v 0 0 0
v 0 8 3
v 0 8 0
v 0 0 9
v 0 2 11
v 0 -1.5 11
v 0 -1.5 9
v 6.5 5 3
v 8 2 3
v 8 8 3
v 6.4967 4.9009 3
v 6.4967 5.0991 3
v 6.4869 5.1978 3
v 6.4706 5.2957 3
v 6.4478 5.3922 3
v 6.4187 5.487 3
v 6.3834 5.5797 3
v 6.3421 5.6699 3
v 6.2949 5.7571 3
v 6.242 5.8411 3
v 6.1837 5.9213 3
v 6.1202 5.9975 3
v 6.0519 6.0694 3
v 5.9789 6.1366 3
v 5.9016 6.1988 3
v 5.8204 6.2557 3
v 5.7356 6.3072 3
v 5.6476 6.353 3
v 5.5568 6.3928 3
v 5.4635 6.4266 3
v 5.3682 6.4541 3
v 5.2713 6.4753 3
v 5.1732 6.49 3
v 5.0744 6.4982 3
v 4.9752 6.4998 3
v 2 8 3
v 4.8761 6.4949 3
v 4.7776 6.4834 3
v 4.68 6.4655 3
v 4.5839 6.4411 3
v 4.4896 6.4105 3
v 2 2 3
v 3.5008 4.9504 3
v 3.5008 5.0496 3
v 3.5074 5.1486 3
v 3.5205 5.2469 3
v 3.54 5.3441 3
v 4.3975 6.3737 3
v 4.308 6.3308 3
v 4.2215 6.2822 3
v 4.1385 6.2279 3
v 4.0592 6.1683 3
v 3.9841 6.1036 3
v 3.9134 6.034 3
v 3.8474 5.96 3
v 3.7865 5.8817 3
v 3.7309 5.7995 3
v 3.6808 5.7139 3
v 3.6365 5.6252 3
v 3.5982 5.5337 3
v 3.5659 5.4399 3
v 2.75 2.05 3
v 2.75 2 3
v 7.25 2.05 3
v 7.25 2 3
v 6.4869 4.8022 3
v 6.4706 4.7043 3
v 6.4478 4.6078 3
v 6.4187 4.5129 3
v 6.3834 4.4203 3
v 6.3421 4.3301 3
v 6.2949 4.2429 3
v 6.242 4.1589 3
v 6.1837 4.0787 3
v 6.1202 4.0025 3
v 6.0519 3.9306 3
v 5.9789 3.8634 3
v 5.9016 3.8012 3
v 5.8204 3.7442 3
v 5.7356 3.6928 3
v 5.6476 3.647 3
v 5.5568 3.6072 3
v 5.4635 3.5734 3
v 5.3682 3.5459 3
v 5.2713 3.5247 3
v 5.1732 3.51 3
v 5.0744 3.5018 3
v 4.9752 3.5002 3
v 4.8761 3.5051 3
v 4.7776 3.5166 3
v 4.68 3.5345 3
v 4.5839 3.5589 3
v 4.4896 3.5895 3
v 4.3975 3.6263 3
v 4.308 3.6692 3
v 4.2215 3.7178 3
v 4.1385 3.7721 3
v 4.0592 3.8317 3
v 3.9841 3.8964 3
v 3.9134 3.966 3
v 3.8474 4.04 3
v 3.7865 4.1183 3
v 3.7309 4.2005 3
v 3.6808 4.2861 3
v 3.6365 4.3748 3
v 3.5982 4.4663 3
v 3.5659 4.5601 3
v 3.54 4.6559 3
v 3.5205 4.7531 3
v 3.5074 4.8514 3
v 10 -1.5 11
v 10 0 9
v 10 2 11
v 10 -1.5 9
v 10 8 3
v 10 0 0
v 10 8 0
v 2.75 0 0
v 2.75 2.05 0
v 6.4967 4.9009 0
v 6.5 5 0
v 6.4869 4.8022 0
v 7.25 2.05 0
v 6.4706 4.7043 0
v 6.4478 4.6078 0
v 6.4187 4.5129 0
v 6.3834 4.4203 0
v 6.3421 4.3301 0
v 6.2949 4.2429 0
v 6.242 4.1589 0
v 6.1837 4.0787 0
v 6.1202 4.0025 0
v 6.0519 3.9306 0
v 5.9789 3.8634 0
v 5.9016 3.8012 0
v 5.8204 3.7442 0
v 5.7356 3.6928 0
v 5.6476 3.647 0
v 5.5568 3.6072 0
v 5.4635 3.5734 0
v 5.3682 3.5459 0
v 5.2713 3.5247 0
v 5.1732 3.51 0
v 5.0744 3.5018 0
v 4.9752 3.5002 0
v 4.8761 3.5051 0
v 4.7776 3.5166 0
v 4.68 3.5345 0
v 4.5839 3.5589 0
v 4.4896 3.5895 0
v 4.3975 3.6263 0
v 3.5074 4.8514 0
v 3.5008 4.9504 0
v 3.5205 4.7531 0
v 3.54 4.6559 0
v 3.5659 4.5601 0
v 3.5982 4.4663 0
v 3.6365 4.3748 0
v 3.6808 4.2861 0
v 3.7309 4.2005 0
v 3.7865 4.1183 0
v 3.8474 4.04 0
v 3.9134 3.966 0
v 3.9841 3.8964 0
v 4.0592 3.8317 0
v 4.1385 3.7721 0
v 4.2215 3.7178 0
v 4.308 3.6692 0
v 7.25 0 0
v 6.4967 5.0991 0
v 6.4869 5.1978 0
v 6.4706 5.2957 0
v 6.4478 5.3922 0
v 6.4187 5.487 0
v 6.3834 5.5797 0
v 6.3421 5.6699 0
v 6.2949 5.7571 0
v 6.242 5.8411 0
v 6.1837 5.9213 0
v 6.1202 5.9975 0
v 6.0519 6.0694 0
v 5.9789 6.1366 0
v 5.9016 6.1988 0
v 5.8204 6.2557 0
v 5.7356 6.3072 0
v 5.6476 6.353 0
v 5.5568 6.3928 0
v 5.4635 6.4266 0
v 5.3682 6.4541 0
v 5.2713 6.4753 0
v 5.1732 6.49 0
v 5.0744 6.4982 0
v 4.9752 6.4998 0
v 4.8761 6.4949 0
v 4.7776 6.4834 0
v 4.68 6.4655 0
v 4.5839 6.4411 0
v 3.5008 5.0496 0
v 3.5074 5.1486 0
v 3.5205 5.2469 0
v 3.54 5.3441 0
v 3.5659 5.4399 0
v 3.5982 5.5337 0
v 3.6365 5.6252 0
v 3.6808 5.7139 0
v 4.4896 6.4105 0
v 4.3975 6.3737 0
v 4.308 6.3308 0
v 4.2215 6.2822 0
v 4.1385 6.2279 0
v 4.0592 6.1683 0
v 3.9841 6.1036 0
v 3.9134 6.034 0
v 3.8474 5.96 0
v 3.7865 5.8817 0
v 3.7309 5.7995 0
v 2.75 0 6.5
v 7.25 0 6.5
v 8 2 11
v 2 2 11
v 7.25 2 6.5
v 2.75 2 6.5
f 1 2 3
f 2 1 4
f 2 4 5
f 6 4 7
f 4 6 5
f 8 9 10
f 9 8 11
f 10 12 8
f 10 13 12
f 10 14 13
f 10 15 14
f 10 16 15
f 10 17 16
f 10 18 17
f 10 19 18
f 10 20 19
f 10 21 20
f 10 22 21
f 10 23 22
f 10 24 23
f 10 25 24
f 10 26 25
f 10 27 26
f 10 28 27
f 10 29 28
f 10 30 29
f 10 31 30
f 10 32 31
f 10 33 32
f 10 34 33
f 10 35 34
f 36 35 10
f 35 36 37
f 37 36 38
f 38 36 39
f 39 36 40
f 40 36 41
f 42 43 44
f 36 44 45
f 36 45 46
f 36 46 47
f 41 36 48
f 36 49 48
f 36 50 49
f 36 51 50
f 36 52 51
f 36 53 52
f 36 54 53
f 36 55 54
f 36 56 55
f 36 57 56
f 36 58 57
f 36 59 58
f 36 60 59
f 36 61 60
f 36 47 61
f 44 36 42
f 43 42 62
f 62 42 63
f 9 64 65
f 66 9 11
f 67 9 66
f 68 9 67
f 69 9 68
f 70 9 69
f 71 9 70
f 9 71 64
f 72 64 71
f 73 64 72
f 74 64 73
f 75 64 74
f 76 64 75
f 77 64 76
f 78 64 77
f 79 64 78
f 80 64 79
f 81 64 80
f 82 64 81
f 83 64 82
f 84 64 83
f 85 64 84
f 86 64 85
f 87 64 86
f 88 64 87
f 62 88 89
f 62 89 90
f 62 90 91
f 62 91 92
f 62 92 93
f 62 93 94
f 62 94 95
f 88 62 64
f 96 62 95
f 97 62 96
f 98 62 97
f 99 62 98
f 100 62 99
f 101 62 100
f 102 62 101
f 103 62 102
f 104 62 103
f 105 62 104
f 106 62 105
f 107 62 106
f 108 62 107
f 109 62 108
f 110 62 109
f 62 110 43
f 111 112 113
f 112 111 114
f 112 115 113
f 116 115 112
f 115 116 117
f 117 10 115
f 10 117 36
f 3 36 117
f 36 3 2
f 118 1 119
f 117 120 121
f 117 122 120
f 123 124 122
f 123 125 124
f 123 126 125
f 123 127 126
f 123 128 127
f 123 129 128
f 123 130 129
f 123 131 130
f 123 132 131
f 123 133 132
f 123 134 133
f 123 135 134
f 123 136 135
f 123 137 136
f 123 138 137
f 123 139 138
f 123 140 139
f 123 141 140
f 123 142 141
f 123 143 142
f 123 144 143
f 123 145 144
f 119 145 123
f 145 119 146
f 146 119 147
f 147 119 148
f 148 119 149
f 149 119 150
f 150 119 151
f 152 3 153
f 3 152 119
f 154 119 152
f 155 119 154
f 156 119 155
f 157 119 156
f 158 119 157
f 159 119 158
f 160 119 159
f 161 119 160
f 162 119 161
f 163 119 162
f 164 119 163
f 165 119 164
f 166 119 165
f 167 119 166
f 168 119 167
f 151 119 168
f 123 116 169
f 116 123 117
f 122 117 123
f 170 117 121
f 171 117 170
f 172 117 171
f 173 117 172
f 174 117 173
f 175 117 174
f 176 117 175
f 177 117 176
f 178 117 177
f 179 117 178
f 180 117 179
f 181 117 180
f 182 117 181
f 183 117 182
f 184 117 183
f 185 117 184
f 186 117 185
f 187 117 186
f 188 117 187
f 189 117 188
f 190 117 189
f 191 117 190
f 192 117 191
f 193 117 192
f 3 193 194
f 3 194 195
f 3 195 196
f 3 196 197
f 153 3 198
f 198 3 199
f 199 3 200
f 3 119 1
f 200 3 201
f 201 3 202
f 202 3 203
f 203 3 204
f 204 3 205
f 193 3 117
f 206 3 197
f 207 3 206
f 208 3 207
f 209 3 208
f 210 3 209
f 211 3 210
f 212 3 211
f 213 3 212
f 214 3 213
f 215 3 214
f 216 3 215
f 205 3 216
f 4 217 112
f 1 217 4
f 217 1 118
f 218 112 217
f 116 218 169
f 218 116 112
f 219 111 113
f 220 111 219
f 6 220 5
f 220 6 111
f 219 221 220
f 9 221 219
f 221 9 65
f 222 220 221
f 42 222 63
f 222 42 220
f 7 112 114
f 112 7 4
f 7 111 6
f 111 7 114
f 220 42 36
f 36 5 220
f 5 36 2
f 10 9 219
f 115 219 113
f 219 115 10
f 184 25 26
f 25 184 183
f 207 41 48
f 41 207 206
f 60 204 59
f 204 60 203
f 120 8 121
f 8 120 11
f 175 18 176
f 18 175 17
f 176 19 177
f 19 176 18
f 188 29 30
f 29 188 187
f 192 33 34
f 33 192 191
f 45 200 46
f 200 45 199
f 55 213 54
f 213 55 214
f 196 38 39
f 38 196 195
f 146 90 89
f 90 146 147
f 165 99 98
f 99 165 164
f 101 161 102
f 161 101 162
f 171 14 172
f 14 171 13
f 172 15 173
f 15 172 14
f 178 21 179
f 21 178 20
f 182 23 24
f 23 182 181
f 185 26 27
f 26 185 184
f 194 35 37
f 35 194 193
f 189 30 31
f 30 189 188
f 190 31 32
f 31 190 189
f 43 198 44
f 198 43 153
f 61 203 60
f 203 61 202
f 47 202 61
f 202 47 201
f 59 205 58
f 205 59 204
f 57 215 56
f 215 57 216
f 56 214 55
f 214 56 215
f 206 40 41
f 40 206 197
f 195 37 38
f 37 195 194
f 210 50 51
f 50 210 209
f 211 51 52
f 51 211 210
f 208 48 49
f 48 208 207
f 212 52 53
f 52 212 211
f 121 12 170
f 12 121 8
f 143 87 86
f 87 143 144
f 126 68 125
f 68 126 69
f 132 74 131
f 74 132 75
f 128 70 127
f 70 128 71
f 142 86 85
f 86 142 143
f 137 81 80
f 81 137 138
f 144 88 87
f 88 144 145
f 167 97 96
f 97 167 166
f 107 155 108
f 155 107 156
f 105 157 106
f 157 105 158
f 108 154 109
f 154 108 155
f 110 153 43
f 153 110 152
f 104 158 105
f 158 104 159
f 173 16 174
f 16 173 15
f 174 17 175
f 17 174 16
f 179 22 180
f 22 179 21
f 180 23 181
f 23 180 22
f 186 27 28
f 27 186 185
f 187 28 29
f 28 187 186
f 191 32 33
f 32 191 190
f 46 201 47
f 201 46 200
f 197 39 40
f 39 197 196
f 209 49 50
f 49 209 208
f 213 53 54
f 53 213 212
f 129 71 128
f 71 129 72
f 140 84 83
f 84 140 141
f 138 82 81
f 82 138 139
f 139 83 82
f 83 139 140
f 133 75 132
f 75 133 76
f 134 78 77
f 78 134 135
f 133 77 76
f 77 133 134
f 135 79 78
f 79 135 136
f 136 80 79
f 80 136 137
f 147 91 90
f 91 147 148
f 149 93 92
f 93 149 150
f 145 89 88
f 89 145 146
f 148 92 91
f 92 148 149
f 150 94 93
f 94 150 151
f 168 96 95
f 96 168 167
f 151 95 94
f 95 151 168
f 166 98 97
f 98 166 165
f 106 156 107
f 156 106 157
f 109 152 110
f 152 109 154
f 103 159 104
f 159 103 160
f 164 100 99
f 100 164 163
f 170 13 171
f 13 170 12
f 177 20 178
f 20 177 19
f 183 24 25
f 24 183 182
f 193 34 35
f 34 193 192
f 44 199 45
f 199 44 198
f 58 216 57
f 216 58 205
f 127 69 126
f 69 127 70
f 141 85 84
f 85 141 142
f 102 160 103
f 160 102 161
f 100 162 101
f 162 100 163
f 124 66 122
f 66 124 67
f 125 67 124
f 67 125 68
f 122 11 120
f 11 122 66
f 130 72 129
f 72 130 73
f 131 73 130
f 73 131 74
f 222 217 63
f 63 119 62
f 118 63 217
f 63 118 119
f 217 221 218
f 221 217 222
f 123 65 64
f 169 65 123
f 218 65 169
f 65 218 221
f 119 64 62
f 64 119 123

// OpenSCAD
m3_hole_radius=1.5;

$fa=0.1;
$fs=0.1;

module mini_breadboard_mounting_bracket(breadboard_thickness=9, overhang=1.5) {
    color("YellowGreen",0.5)
    difference() {
        union() {
            // base
            cube([10,8,3]);
            // wall
            cube([10,2,breadboard_thickness+2]);
            // lip
            translate([0,-overhang,breadboard_thickness]) cube([10,overhang,2]);
            // support walls
            points=[[-6,0],[0,0],[0,breadboard_thickness+2-3]];
            translate([2,2,3]) rotate(a=-90, v=[0,0,1]) rotate(a=90, v=[1,0,0]) 
                linear_extrude(2, center=false, convexity=4) polygon(points);
            translate([10,2,3]) rotate(a=-90, v=[0,0,1]) rotate(a=90, v=[1,0,0]) 
                linear_extrude(2, center=false, convexity=4) polygon(points);
        }
        // m3 screw hole
        translate([5,5,-0.5]) cylinder(h=4, r=m3_hole_radius);
        // cutout for the breadboard knob/protrusion thing
        translate([5-4.5/2,-0.05,-1]) cube([4.5,2.1,6.5+1]);
    }
}
//cube([4.5,2,5.5]);







mini_breadboard_mounting_bracket();
//translate([0,-29,0]) import("Breadboard/Mini_Breadboard.stl", convexity=4);
